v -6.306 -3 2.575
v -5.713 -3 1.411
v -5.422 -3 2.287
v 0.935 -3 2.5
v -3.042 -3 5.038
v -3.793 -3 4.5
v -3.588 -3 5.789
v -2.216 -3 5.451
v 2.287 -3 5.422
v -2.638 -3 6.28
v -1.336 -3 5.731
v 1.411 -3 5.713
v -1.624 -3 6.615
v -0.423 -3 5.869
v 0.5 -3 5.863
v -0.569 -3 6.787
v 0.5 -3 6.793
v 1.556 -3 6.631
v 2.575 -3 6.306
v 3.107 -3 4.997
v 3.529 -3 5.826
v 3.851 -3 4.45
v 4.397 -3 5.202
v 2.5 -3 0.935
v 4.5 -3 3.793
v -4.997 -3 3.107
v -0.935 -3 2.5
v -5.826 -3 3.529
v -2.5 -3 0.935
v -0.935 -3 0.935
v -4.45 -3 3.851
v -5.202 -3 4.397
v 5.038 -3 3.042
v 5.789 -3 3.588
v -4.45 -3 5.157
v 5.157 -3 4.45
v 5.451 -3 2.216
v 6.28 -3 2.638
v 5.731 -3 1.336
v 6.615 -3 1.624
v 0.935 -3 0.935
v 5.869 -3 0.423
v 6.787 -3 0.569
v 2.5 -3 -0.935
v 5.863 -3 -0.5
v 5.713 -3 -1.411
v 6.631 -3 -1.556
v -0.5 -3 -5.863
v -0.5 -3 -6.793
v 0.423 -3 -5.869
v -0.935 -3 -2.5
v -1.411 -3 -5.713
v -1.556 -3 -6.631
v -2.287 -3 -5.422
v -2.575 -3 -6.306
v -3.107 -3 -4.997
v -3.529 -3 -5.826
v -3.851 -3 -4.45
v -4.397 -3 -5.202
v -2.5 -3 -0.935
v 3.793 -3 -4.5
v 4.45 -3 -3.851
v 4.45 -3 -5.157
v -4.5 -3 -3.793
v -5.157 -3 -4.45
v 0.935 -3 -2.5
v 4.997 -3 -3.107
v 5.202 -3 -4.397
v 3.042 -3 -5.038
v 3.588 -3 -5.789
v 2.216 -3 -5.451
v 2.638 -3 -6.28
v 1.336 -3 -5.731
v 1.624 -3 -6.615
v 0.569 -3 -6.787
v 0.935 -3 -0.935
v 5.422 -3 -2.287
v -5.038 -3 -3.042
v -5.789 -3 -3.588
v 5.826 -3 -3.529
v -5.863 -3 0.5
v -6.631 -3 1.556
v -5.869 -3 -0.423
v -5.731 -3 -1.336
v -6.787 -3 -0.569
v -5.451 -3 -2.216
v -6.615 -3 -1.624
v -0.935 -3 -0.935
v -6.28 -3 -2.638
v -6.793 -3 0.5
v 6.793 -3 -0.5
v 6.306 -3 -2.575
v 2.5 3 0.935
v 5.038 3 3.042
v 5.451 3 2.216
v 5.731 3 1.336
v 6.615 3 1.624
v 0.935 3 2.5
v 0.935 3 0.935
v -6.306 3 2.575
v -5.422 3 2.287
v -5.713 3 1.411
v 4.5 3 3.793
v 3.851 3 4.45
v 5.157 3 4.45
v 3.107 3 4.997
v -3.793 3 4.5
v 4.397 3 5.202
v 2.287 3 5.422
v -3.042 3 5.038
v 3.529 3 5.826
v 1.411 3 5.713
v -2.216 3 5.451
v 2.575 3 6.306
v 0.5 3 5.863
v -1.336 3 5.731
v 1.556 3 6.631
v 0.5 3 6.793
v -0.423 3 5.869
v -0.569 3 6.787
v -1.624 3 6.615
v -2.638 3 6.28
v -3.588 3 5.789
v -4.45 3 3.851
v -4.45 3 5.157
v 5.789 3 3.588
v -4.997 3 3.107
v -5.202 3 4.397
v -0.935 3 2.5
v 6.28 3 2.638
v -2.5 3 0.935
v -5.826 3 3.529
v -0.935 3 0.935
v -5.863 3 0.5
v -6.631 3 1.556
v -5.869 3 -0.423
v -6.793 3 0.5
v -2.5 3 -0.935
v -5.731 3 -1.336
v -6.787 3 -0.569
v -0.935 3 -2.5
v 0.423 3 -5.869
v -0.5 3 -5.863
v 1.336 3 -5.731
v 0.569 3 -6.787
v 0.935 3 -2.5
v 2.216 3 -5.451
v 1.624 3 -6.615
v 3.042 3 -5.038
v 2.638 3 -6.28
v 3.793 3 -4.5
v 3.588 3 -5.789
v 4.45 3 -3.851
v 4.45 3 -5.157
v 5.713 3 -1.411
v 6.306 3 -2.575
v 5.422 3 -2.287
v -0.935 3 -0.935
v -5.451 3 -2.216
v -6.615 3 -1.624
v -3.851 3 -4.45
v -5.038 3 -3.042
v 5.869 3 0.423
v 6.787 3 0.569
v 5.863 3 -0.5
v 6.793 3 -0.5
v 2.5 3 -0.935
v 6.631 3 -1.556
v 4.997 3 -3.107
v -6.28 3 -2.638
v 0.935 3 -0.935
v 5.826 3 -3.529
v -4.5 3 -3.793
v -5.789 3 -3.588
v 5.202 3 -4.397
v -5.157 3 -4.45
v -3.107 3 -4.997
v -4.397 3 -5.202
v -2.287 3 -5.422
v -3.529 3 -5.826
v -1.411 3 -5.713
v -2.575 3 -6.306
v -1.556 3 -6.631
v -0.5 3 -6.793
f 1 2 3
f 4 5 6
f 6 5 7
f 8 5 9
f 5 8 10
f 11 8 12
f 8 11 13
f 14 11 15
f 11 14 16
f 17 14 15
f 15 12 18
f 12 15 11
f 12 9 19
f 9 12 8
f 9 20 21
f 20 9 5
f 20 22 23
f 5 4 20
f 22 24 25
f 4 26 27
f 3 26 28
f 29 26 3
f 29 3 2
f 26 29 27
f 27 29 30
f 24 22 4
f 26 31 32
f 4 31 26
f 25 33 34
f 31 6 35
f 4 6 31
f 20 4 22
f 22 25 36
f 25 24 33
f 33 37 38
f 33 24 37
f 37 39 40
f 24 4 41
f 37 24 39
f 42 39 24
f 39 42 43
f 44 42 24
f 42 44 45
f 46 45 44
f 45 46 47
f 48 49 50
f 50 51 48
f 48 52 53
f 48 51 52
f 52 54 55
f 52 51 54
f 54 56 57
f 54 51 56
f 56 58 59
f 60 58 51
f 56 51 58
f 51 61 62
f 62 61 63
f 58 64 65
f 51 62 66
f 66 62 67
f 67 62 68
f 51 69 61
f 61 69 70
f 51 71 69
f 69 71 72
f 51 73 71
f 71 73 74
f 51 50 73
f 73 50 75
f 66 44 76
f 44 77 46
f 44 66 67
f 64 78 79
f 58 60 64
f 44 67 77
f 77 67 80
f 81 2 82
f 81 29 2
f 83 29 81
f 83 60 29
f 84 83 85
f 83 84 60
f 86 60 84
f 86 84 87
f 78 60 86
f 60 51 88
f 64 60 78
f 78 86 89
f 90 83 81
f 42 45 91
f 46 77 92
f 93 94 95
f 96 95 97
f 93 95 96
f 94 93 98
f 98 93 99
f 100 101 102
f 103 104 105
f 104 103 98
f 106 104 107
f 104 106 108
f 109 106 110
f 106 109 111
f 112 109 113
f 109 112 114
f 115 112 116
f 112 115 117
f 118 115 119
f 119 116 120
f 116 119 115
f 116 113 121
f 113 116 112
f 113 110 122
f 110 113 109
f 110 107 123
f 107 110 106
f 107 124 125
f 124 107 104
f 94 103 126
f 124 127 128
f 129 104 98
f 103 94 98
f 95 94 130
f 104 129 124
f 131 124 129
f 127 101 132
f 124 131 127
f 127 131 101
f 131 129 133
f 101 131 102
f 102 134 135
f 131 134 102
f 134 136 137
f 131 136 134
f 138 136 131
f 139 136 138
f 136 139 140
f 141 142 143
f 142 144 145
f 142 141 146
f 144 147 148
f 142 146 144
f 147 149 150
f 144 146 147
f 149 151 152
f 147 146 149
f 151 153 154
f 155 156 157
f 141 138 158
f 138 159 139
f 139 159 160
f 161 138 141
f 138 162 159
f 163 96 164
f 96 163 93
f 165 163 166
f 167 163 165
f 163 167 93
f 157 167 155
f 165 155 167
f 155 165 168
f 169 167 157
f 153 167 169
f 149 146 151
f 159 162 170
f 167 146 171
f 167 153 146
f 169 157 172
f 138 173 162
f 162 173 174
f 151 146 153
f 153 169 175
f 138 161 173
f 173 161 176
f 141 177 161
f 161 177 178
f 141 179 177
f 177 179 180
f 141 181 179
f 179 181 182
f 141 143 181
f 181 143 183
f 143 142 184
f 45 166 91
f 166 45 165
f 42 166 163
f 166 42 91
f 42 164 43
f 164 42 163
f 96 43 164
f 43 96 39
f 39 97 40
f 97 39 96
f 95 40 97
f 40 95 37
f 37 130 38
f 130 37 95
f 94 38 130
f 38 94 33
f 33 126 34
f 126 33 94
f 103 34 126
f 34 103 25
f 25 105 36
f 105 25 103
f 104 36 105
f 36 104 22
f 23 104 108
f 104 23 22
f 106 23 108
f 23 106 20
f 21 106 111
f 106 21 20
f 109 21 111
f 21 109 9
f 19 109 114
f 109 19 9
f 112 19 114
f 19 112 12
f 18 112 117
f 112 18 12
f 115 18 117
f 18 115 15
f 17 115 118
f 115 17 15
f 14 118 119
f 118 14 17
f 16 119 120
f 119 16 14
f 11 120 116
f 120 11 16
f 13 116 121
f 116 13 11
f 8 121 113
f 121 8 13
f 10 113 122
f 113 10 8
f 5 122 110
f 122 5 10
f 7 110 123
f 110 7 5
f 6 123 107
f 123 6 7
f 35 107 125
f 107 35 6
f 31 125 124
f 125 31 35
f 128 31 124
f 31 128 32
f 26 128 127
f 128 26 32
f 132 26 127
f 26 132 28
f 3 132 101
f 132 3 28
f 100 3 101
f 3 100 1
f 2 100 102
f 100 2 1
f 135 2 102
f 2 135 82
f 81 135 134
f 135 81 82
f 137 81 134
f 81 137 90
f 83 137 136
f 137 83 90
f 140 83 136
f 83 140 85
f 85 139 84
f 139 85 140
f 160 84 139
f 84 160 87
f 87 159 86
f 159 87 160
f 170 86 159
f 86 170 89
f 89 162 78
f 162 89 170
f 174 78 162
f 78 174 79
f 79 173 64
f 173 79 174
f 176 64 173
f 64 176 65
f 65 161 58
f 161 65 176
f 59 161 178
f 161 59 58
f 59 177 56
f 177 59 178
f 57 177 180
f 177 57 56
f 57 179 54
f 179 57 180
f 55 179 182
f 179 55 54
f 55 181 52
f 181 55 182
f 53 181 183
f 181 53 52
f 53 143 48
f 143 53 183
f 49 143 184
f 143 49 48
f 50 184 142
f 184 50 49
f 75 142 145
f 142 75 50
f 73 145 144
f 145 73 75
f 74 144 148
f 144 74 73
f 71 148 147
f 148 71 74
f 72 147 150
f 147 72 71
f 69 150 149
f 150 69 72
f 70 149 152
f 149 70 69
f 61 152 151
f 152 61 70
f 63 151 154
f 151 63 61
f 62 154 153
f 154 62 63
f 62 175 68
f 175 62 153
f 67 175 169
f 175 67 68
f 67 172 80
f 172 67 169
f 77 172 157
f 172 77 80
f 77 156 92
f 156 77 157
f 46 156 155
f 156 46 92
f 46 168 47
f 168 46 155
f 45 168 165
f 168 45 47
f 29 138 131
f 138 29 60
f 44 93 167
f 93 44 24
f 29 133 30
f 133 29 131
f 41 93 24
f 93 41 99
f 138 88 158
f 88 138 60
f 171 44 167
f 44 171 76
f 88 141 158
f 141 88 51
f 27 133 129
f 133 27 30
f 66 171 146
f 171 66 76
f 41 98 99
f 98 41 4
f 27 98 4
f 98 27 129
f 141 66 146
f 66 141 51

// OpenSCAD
// Criação dos bracos da cruz
braco_horizontal = [5, 1.87, 10];
braco_vertical = [1.87, 5, 10];

// União dos bracos da cruz
module cruz(){
    union() {
    cube(braco_horizontal, center=true);
    cube(braco_vertical, center=true);
    }
}

// Parâmetros da engrenagem
modulo = 1; // Módulo da engrenagem
n_dentes = 40; // Número de dentes
altura_dente = 2; // Altura do dente
largura_dente = 7; // Largura do dente

// Função para criar um único dente assimétrico
module dente_assimetrico() {
    difference() {
        scale([largura_dente, altura_dente / 2, 6])
            cube(1, center=true);
        translate([largura_dente / 2, 0, 0])
            rotate([0, 0, 45]) // Ajuste o ângulo de inclinação do dente aqui
                scale([1, 7, 7])
                    cube(1, center=true);
    }
}
module engrenagem() {
    for (i = [0:n_dentes - 1]) {
        angulo = 360 / n_dentes * i;
        rotate([0, 0, angulo])
            translate([(largura_dente / 2), 0, 0])
            dente_assimetrico();
    }
}


//Functions
module final_gear(){
    difference(){
    engrenagem();
    cruz();
    }
}

//Render the piece
rotate([90,0,0])
final_gear();
